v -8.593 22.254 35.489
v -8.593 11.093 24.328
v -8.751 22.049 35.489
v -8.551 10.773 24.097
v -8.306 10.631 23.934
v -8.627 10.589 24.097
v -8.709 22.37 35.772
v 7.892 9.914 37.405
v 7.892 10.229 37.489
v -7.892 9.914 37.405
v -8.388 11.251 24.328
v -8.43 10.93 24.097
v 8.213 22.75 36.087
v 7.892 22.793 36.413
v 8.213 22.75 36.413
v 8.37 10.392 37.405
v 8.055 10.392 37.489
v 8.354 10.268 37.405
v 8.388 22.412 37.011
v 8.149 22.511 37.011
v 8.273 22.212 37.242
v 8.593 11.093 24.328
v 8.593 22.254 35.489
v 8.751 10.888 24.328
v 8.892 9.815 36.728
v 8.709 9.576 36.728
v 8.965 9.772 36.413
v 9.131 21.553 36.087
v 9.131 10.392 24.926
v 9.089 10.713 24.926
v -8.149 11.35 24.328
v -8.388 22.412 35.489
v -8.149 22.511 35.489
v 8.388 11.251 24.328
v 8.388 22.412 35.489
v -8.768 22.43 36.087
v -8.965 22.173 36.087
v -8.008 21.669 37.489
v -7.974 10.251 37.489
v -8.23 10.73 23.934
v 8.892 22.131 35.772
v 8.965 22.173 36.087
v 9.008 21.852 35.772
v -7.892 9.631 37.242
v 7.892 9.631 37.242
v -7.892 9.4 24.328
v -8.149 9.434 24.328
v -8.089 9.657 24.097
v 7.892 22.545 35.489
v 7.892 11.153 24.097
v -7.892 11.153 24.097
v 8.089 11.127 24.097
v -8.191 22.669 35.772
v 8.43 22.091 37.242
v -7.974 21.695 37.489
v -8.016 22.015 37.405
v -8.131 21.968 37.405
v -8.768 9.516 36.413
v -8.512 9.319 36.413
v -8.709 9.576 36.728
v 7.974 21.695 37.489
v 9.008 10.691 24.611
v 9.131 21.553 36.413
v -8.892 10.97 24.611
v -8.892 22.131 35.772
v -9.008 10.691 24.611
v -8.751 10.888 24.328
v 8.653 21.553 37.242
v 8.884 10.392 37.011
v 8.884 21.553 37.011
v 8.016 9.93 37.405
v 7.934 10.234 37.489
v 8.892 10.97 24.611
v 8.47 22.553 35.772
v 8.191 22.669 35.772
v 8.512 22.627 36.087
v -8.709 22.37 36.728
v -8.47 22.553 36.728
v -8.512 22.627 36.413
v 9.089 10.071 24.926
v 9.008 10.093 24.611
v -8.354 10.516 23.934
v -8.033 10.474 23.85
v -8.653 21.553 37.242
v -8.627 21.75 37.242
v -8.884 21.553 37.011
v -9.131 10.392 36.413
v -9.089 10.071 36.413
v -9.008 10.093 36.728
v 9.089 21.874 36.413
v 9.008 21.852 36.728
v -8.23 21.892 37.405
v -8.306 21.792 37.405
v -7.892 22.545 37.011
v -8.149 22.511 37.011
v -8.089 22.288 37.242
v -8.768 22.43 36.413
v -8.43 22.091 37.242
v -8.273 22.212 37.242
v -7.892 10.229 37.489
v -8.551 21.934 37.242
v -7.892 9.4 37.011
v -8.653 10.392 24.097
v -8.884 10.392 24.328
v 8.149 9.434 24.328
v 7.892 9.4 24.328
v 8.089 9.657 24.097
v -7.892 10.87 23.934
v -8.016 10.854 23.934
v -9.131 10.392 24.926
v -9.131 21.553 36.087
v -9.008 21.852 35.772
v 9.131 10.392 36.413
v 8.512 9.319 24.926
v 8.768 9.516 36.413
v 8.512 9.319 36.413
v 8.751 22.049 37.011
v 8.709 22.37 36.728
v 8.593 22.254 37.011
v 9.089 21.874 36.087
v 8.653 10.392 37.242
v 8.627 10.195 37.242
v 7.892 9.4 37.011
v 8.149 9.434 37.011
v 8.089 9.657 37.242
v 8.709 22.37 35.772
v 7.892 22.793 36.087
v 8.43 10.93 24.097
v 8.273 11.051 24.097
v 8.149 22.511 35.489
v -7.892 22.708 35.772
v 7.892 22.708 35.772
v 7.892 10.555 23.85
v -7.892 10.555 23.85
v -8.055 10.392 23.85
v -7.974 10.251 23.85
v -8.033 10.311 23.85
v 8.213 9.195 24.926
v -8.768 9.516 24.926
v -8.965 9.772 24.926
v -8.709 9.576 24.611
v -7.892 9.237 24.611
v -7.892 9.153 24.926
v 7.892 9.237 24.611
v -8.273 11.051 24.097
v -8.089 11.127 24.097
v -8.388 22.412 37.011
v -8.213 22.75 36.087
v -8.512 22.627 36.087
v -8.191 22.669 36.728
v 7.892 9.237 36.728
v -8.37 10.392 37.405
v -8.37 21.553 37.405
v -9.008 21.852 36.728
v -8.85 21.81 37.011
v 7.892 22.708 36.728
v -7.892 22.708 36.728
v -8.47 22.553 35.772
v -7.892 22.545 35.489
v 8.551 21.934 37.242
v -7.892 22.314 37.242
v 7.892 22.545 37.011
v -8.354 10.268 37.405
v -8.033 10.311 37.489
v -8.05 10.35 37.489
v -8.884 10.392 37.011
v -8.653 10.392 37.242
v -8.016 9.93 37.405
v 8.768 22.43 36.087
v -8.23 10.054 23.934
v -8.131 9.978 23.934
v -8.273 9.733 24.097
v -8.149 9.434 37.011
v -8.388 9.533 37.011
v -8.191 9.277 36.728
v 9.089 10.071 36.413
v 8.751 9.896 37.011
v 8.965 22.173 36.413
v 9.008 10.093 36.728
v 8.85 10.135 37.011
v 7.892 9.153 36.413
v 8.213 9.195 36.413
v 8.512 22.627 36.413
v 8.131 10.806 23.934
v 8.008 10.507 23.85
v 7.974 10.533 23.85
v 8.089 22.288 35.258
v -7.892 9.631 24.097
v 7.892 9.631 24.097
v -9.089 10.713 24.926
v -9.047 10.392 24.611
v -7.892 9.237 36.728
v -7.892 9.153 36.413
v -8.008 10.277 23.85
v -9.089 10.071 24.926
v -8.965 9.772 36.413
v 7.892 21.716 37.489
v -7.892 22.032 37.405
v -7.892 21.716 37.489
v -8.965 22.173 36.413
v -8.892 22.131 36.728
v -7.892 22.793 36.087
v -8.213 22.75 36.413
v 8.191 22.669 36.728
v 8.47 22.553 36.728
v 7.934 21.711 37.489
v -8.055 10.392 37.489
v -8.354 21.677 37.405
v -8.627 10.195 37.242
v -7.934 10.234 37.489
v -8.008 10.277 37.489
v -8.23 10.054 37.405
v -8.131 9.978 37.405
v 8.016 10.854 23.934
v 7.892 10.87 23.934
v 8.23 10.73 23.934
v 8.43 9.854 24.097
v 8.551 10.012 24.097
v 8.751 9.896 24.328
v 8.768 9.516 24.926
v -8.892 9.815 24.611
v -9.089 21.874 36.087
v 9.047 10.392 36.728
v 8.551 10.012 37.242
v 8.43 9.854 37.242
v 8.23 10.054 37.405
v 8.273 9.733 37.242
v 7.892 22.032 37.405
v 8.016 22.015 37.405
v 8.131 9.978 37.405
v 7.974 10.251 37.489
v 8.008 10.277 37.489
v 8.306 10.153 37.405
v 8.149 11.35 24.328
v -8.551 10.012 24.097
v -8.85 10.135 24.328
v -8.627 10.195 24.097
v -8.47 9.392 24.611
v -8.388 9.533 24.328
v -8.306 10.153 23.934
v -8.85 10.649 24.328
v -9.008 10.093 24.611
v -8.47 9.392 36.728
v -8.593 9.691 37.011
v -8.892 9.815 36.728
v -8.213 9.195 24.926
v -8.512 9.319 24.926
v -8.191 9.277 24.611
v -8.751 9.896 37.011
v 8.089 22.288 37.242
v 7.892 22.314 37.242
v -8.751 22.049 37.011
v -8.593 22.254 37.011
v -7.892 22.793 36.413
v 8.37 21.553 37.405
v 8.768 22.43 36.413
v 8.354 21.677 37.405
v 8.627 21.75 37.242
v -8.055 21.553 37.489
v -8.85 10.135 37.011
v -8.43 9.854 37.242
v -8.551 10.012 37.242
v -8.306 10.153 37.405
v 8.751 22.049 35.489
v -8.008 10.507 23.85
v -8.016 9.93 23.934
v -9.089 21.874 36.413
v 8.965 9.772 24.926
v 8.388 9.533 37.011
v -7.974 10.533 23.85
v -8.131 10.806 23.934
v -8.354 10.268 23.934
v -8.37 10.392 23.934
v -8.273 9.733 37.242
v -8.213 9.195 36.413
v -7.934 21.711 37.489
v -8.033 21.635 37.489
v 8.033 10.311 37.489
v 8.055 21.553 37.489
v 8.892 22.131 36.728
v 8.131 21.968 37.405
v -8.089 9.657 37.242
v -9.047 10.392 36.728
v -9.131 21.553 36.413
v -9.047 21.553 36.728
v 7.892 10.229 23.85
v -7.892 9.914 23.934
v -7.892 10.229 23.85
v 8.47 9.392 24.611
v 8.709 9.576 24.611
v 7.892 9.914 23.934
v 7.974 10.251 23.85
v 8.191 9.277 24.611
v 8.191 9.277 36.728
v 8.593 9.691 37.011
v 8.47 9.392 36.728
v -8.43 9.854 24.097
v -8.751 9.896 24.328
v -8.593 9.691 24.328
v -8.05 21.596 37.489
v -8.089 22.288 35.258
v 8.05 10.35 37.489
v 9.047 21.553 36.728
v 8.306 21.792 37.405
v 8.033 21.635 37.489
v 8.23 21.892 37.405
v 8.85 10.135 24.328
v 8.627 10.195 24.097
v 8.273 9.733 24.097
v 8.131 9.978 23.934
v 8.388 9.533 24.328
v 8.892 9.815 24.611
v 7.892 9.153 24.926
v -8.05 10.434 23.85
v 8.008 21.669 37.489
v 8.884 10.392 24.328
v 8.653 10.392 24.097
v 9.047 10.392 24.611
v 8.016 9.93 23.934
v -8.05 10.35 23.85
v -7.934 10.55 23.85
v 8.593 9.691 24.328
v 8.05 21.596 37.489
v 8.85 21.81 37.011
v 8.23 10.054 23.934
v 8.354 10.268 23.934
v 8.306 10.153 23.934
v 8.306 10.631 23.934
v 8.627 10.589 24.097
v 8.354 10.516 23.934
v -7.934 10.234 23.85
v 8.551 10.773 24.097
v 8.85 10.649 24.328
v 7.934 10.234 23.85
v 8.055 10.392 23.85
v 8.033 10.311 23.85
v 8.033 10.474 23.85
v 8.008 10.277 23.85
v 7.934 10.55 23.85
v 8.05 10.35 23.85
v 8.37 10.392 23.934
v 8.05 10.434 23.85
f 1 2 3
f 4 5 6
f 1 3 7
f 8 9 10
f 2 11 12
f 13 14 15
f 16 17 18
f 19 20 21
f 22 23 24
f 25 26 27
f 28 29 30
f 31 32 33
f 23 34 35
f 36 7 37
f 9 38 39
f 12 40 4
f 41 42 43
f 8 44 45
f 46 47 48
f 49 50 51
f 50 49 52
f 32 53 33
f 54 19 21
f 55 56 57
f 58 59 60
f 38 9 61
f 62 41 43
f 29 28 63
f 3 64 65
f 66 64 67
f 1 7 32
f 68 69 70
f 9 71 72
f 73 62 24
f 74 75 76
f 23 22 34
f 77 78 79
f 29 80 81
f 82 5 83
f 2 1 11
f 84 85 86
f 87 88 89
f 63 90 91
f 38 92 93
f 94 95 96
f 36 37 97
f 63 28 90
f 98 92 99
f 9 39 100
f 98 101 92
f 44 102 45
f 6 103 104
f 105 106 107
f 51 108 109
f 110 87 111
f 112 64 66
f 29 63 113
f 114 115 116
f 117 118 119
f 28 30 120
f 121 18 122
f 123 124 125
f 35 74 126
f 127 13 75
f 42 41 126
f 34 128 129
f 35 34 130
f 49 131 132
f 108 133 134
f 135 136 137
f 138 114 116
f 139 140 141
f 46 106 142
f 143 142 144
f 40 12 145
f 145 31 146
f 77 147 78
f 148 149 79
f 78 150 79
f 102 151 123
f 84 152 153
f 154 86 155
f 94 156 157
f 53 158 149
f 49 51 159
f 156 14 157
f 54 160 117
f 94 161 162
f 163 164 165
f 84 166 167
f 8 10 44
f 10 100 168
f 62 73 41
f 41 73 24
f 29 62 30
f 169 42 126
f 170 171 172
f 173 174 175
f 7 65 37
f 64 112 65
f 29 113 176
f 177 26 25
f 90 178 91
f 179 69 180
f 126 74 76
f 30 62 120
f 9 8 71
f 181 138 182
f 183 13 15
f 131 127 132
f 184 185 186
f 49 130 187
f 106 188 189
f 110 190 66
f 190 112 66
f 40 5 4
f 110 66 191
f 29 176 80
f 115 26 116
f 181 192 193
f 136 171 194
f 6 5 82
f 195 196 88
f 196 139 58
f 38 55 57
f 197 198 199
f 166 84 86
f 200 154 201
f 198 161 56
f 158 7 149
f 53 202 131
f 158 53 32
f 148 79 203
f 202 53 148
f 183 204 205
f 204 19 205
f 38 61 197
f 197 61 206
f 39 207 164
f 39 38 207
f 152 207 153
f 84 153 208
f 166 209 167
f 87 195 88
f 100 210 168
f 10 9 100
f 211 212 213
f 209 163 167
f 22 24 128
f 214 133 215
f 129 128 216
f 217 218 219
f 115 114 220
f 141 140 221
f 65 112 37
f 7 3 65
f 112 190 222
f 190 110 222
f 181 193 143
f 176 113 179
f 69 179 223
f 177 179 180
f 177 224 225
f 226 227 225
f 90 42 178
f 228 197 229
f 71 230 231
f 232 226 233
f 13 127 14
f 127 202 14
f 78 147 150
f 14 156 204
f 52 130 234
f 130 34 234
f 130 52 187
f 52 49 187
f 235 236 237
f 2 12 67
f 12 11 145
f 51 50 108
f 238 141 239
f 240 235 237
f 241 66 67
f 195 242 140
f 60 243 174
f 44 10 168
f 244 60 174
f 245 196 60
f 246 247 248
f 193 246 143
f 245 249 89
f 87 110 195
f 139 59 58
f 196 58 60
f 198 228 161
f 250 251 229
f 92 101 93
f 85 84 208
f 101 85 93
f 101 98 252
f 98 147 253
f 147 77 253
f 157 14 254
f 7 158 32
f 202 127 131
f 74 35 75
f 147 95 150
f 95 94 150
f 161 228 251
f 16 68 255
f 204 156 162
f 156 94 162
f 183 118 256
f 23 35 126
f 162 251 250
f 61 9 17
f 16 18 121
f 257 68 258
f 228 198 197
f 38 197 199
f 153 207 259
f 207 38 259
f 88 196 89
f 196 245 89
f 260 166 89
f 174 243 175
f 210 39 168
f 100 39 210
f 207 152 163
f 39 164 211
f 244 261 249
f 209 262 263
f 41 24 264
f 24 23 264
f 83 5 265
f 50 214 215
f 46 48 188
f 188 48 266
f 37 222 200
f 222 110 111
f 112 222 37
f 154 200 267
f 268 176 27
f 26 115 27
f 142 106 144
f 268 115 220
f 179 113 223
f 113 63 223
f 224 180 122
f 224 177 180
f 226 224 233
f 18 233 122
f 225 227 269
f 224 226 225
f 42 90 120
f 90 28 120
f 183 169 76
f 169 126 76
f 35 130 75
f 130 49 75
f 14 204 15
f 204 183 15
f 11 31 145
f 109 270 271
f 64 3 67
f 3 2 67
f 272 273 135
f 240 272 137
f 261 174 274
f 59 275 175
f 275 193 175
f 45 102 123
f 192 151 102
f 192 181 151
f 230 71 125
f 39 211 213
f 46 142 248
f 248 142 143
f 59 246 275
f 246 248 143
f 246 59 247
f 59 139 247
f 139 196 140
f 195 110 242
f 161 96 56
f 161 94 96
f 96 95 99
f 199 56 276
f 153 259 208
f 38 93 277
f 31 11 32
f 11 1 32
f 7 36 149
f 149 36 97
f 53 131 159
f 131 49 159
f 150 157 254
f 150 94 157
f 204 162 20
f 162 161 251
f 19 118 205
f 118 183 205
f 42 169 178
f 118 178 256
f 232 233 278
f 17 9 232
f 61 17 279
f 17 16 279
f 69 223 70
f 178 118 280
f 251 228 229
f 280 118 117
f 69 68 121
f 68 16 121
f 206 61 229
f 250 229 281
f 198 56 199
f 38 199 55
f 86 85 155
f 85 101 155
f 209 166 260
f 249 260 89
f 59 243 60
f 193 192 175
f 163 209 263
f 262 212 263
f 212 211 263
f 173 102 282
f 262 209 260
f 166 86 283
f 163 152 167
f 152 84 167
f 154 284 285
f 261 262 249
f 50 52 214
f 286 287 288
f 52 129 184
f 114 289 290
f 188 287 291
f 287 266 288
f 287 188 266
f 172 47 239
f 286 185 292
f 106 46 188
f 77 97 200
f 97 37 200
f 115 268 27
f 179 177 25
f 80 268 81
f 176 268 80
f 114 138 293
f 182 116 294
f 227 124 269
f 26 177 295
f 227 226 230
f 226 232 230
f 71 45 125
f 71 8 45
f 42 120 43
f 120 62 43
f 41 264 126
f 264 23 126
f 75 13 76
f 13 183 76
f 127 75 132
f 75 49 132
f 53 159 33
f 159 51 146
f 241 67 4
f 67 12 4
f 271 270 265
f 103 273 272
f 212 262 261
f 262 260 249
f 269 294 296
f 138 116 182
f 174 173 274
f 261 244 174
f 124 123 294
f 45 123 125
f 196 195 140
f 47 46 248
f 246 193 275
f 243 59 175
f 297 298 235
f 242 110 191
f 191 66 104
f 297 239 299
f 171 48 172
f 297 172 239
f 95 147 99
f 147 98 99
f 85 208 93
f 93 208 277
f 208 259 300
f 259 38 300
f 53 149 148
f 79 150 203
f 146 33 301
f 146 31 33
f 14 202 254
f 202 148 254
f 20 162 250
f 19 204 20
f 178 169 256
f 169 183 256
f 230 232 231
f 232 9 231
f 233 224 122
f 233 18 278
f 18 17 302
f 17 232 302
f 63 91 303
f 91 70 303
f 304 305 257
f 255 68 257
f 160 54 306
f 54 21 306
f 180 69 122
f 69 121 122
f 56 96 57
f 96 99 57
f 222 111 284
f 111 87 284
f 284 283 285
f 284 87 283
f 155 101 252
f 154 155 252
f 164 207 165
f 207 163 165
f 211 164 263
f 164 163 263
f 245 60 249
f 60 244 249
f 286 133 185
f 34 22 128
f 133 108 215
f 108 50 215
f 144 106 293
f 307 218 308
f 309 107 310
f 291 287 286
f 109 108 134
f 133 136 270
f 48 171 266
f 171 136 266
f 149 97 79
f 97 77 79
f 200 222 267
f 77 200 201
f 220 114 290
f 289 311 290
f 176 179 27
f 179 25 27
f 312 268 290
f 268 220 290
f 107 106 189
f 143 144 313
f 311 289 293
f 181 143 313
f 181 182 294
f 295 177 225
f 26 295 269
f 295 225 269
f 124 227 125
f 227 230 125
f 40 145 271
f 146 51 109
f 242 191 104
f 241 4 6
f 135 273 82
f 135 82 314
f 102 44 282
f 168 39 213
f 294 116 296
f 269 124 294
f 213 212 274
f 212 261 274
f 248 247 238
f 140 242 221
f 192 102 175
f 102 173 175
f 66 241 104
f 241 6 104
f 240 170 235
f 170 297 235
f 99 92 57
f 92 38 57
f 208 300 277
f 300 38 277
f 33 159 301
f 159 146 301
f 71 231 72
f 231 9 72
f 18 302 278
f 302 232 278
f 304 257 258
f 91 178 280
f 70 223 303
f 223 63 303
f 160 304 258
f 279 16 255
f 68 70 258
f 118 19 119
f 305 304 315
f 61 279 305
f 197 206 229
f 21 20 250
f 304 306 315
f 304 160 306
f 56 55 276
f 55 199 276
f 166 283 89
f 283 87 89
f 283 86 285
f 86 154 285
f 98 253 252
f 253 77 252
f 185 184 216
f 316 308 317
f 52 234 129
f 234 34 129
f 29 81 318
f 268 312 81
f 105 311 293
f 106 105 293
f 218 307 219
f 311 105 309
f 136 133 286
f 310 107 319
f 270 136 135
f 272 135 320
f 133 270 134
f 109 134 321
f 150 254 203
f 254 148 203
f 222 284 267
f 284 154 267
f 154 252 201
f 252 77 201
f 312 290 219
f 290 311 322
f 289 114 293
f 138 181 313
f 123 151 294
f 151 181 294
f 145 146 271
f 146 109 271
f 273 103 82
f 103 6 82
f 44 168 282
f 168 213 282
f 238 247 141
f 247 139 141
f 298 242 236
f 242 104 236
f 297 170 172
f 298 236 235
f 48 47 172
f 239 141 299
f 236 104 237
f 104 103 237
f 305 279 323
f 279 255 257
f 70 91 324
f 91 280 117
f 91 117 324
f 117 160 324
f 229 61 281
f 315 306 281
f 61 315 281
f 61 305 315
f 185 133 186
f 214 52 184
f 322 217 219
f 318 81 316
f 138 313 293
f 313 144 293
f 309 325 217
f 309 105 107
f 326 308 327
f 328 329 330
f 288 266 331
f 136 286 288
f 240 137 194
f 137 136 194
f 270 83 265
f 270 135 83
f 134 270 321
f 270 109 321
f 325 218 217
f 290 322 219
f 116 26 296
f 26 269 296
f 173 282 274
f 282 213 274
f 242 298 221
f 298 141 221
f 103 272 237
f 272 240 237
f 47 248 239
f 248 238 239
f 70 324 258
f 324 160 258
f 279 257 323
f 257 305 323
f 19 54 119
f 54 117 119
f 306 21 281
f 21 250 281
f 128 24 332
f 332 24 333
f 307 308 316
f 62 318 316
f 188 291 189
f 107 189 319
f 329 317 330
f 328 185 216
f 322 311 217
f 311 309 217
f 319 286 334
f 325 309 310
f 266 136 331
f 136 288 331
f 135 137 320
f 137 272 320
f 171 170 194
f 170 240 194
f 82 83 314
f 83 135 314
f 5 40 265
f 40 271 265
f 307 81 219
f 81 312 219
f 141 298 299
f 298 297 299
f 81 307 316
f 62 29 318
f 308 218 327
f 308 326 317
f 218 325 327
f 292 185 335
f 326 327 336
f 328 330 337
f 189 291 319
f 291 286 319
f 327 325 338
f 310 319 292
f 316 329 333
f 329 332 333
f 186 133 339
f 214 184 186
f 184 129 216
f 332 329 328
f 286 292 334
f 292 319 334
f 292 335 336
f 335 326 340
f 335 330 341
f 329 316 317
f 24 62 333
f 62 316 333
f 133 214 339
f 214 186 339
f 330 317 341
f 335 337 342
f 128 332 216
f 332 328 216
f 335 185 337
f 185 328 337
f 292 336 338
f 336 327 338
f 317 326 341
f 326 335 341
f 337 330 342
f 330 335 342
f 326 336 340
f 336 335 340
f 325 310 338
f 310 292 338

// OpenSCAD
// file: def.scad
round_radius = 1.25;
sticker_margin = 3;
sticker_round_radius = 1;
total_size = 75;
base_size = (total_size - round_radius * 4) / (4 + sqrt(2));
cut1_dis = base_size * sqrt(2) / 2;
cut2_dis = base_size * (1 + sqrt(2) / 2);
cut2_corner_dis = base_size * (sqrt(2) / 2 * sqrt(3) + 1 / 3 * sqrt(3));
inf = total_size * 10;
// main file
include <def.scad>

module intermediate_block() {
    minkowski() {
        difference() {
            intersection() {
                cube([total_size - round_radius * 2, total_size - round_radius * 2, total_size - round_radius * 2], center = true);
                intersection_for (vec = [[45, 0, 0], [-90, 0, 0]])
                    rotate(vec)
                        translate([0, 0, cut1_dis + round_radius])
                            translate([-inf, -inf, 0])
                                cube([inf * 2, inf * 2, inf]);
            }
            for (vec = [[0, 90, 0], [0, -90, 0]])
                rotate(vec)
                    translate([0, 0, cut1_dis - round_radius])
                        translate([-inf, -inf, 0])
                            cube([inf * 2, inf * 2, inf]);
        }
        sphere(round_radius, $fn = 24);
    }
}

intermediate_block();
